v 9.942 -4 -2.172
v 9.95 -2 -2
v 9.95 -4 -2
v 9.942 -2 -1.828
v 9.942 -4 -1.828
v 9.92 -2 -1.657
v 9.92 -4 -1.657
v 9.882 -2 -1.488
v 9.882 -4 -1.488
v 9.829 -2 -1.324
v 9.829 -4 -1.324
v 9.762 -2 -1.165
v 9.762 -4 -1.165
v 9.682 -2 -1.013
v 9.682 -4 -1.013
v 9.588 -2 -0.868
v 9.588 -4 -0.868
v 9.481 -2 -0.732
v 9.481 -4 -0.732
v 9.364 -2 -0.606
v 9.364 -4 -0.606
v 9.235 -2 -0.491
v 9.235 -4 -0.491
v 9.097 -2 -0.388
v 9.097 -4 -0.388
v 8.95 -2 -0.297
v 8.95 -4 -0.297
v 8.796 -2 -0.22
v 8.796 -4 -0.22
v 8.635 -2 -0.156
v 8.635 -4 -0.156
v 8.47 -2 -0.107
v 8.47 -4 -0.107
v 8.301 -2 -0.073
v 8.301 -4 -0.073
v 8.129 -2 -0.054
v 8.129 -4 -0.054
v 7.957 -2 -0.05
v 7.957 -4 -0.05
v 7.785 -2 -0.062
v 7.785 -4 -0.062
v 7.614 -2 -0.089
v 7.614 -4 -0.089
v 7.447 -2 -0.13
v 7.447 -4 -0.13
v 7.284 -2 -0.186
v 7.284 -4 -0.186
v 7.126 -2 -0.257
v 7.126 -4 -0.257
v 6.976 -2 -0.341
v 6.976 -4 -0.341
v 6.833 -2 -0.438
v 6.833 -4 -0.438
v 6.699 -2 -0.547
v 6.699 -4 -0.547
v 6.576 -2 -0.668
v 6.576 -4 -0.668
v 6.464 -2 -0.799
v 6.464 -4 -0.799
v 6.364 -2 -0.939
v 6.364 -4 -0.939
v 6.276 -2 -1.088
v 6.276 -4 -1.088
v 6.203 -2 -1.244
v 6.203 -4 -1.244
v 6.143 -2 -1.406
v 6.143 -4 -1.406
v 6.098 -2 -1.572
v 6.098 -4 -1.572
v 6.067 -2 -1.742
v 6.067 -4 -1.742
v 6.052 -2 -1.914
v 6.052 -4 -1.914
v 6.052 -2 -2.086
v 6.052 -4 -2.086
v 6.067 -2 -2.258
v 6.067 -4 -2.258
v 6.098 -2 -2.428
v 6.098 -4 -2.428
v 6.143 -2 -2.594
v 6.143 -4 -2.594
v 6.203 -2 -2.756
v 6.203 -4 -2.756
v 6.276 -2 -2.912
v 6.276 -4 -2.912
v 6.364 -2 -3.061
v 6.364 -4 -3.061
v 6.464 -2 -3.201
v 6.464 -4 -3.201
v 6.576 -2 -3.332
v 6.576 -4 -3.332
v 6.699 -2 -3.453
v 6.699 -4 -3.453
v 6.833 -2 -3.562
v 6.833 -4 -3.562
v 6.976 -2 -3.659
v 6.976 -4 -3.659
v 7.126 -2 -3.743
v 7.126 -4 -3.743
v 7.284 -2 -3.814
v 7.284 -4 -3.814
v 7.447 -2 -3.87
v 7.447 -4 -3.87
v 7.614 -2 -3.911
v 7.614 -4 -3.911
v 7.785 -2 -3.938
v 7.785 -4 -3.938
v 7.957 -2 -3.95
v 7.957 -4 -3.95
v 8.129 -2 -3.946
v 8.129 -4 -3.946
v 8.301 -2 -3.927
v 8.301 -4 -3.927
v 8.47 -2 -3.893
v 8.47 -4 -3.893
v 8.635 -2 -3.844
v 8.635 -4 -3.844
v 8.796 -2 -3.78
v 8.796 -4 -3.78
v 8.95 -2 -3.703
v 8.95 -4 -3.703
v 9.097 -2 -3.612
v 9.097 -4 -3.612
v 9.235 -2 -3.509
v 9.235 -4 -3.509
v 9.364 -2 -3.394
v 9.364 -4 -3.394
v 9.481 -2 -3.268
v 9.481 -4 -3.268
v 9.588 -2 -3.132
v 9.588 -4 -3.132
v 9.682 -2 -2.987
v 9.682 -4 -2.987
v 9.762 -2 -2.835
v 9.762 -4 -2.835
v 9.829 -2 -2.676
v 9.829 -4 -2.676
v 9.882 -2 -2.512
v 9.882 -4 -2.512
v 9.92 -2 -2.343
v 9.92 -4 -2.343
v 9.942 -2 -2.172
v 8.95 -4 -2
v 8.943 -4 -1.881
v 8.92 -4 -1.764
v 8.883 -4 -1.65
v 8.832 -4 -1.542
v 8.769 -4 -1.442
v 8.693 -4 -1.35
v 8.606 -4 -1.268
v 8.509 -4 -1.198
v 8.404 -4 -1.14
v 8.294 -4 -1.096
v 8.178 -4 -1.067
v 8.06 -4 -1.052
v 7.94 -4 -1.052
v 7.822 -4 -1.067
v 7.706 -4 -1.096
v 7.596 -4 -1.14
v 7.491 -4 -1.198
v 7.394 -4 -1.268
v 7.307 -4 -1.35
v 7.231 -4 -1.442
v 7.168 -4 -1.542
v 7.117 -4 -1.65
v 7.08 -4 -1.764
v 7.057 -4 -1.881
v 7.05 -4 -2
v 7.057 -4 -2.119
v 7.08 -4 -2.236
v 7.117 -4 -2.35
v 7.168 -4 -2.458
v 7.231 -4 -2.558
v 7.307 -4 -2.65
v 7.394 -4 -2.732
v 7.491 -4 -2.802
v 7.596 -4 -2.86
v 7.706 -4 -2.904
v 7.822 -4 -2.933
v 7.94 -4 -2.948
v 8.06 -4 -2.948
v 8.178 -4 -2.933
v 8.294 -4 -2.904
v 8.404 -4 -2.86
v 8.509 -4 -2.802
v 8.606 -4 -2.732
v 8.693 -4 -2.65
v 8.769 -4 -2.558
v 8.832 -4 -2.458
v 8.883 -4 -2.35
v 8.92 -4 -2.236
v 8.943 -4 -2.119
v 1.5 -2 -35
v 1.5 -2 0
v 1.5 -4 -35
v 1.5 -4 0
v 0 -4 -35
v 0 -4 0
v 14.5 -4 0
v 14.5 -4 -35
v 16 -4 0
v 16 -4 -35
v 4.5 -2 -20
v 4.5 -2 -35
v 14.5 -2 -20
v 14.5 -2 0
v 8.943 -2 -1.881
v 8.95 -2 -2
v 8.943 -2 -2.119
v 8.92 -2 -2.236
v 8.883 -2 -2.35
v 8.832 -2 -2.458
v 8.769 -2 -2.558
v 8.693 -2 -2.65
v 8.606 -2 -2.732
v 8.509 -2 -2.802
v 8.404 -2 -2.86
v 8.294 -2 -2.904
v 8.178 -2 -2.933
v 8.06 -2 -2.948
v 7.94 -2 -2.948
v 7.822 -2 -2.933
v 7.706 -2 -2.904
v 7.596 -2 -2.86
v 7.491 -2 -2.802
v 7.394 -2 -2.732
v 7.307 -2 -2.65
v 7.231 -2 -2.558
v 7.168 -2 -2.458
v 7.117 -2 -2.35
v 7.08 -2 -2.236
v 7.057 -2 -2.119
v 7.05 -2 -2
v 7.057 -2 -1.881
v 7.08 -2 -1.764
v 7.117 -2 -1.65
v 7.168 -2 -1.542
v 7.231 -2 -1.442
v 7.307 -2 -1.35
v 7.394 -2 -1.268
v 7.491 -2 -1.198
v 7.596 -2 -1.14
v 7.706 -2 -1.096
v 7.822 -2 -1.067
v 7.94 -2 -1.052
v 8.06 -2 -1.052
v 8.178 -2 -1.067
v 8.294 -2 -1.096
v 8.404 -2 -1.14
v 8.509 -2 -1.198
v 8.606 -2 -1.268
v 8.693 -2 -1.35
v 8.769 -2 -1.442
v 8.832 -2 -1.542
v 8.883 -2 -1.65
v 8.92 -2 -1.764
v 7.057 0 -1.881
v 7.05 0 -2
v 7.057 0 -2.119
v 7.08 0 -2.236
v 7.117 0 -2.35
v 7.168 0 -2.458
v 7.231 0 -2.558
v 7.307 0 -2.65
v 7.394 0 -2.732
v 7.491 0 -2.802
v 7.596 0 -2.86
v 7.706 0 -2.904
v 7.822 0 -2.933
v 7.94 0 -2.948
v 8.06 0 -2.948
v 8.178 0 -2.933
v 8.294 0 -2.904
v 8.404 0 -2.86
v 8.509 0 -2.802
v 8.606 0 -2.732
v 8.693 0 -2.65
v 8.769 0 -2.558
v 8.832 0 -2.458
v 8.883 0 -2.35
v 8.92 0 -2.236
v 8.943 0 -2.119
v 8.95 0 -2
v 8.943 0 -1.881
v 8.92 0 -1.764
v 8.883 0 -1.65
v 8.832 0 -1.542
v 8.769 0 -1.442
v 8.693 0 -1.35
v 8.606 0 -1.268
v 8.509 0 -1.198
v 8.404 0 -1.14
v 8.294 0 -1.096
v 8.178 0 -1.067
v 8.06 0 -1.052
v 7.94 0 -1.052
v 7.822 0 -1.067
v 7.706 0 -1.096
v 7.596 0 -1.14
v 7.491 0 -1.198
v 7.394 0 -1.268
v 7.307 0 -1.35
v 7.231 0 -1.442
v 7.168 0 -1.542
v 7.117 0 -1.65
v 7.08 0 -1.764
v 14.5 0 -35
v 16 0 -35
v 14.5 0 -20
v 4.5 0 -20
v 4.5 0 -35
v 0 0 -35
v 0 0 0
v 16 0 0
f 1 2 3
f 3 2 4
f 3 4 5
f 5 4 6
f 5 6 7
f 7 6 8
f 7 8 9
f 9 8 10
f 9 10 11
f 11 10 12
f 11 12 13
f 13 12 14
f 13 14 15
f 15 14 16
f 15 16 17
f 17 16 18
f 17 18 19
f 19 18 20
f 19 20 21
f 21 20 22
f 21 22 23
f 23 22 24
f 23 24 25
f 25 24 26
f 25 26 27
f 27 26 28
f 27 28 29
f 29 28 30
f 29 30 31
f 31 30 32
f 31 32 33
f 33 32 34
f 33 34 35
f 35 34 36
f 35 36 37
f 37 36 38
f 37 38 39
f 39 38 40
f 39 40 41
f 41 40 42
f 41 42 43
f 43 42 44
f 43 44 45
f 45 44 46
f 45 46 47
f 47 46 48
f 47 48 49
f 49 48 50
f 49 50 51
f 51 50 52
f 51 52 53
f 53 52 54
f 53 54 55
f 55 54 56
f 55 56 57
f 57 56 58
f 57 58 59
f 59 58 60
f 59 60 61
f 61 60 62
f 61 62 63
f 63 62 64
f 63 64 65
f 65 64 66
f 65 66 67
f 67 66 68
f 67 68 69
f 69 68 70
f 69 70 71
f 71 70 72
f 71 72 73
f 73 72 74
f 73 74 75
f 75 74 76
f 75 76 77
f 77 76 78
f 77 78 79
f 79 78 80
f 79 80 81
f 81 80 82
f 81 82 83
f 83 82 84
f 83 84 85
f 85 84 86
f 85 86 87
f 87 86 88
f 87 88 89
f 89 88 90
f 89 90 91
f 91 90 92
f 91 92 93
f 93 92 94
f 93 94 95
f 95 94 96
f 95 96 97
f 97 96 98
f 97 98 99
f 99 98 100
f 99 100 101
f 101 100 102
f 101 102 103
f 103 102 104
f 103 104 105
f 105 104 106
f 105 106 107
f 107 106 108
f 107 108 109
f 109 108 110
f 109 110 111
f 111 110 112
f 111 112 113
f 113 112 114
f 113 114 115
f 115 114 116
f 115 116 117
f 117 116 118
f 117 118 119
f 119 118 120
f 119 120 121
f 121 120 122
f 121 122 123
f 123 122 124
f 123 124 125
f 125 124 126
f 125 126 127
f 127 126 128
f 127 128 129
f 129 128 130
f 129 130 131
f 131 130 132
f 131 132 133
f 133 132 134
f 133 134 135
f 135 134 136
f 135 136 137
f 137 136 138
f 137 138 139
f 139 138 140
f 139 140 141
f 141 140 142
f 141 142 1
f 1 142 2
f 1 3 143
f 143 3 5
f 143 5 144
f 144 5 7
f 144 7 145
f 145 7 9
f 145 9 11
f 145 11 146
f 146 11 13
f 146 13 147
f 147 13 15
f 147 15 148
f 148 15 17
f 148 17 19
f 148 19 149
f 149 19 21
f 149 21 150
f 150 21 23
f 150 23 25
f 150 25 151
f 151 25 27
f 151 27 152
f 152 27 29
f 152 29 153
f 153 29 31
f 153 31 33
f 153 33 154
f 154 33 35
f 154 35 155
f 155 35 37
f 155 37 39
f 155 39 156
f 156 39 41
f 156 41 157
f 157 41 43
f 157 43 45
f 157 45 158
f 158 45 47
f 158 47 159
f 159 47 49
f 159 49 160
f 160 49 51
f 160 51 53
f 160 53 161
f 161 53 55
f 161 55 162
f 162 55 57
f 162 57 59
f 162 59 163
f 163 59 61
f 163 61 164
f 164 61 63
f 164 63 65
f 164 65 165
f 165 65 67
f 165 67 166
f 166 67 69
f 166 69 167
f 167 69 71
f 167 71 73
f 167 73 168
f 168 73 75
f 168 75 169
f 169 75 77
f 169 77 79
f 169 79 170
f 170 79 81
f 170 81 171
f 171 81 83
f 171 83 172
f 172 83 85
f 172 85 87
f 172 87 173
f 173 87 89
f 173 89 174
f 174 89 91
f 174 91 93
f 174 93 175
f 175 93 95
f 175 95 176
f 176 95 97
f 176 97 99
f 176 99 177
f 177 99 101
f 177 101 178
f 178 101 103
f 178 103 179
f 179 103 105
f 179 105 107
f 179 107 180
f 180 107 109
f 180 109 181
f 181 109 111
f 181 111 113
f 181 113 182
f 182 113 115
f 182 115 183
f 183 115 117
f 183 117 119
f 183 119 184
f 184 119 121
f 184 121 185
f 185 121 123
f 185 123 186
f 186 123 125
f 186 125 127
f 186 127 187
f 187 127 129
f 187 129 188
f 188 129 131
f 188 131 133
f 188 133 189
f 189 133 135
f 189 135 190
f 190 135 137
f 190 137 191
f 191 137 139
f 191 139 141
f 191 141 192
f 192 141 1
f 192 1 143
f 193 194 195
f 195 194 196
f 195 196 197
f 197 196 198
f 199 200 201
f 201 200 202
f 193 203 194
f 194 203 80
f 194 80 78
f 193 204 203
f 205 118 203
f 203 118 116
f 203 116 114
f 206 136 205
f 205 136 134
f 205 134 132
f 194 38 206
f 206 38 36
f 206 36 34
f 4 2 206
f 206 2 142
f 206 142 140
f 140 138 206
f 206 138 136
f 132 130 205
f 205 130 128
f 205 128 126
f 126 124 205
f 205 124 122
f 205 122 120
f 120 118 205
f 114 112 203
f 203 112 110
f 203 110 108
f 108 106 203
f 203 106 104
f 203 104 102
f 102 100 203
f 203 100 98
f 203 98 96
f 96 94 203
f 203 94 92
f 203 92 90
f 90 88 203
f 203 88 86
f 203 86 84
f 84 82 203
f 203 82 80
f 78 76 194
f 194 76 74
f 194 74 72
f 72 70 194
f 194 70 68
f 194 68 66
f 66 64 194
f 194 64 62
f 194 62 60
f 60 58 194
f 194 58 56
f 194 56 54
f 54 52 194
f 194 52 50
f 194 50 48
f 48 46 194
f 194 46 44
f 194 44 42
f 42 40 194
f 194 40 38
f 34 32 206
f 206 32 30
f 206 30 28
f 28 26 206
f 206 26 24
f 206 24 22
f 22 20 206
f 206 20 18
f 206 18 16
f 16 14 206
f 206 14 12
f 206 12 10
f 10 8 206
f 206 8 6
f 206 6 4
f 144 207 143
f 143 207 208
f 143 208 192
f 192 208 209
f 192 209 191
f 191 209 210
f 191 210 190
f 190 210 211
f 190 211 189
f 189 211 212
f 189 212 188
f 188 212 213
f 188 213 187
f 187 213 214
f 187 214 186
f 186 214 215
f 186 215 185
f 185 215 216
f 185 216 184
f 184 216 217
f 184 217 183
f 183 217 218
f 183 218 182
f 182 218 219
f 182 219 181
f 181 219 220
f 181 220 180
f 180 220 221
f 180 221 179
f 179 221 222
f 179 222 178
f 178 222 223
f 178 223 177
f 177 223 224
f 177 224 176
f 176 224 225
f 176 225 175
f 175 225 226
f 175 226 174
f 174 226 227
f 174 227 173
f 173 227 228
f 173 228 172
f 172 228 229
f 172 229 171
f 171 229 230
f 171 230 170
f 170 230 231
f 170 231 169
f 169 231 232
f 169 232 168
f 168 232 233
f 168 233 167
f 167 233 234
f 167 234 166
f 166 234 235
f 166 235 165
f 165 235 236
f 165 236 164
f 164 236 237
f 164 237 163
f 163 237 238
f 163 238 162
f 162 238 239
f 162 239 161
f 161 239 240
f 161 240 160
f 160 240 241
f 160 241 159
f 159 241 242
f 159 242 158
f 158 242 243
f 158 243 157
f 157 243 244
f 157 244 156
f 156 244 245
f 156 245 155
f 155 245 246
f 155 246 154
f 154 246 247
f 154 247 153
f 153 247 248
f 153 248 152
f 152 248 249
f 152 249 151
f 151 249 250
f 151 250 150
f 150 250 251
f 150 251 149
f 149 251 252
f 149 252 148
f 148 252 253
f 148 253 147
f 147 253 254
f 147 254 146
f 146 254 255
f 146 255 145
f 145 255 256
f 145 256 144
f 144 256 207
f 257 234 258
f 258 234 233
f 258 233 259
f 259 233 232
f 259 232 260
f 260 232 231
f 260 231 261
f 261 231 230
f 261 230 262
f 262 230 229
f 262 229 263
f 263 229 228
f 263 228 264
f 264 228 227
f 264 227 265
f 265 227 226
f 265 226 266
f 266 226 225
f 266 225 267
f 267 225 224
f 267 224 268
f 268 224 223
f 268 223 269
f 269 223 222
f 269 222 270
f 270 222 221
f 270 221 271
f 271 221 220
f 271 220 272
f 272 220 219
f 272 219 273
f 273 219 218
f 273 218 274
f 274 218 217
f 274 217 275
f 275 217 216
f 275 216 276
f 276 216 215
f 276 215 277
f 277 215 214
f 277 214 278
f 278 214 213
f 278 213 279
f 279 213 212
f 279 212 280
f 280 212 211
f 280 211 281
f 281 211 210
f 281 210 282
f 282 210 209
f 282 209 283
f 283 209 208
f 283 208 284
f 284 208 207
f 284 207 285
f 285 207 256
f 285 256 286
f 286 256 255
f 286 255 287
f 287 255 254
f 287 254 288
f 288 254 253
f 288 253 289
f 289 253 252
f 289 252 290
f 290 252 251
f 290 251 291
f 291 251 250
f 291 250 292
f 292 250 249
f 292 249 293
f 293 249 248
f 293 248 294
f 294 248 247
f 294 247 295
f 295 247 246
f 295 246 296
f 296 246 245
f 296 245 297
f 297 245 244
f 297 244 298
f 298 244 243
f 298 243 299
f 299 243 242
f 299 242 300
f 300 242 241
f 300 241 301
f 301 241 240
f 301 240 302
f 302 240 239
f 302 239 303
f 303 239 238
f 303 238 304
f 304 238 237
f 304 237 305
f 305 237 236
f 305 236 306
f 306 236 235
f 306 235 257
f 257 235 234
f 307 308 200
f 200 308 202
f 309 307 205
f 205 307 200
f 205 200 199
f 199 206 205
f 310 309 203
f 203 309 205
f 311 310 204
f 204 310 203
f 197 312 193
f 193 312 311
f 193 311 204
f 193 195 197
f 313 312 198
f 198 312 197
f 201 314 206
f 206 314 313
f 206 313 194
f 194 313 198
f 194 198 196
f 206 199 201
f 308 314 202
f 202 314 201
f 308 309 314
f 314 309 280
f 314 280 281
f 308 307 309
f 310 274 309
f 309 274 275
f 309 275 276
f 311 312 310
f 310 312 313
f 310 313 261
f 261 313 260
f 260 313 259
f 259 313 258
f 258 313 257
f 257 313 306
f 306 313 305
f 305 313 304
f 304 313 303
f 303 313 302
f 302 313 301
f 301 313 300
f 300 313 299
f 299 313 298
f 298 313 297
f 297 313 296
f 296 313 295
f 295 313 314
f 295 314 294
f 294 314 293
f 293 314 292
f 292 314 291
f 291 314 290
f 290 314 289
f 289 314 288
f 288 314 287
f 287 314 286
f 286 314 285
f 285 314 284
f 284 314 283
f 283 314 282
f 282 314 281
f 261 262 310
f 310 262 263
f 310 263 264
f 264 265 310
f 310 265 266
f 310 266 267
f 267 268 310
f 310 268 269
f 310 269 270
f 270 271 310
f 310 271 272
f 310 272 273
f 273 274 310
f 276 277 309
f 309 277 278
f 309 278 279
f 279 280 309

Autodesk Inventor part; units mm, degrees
ref_plane "YZ Plane" through (0, 0, 0) normal (1, 0, 0) x (0, 1, 0)
ref_plane "XZ Plane" through (0, 0, 0) normal (0, 1, 0) x (-1, 0, 0)
ref_plane "XY Plane" through (0, 0, 0) normal (0, 0, 1) x (1, 0, 0)
sketch "Skizze1" plane through (0, 0, 0) normal (0, 1, 0) x (-1, 0, 0)
  line L0 (0, 0) -> (0, -35)
  line L1 (0, -35) -> (-4.5, -35)
  line L2 (-4.5, -35) -> (-4.5, -20)
  line L3 (-4.5, -20) -> (-14.5, -20)
  line L4 (-14.5, -20) -> (-14.5, -35)
  line L5 (-14.5, -35) -> (-16, -35)
  line L6 (-16, -35) -> (-16, 0)
  line L7 (-16, 0) -> (0, 0)
  circle A0 centre (-8, -2) radius 0.95
  point P0 (-8, 0)
  dimension "d0" = 16
  dimension "d1" = 1.9
  dimension "d2" = 2
  dimension "d4" = 33
  dimension "d5" = 15
  dimension "d6" = 10
  dimension "d7" = 4.5
extrude "Extrusion1" add sketch "Skizze1" against normal blind 2
sketch "Skizze2" plane through (0, -2, 0) normal (0, -1, 0) x (1, 0, 0)
  line L0 (16, -35) -> (16, 0) projected
  line L1 (16, 0) -> (0, 0) projected
  line L2 (0, 0) -> (0, -35) projected
  line L3 (0, -35) -> (4.5, -35) projected
  line L4 (4.5, -35) -> (4.5, -20) projected
  line L5 (4.5, -20) -> (14.5, -20) projected
  line L6 (14.5, -20) -> (14.5, -35) projected
  line L7 (14.5, -35) -> (16, -35) projected
  circle A0 centre (8, -2) radius 0.95 projected
  circle A1 centre (8, -2) radius 1.95
  line L8 (0, 0) -> (16, 0) projected
  line L9 (1.5, 0) -> (1.5, -35)
  line L10 (0, -35) -> (4.5, -35) projected
  line L11 (14.5, -35) -> (16, -35) projected
  line L12 (14.5, -20) -> (14.5, 0)
  point P0 (14.5, 0)
  dimension "d10" = 1
  dimension "d11" = 1.5
extrude "Extrusion2" add sketch "Skizze2" along normal blind 2 contours L7 L6 L12 L1 L0 | L9 L3 L2 L1 | A1
properties part number "power_halterung"
